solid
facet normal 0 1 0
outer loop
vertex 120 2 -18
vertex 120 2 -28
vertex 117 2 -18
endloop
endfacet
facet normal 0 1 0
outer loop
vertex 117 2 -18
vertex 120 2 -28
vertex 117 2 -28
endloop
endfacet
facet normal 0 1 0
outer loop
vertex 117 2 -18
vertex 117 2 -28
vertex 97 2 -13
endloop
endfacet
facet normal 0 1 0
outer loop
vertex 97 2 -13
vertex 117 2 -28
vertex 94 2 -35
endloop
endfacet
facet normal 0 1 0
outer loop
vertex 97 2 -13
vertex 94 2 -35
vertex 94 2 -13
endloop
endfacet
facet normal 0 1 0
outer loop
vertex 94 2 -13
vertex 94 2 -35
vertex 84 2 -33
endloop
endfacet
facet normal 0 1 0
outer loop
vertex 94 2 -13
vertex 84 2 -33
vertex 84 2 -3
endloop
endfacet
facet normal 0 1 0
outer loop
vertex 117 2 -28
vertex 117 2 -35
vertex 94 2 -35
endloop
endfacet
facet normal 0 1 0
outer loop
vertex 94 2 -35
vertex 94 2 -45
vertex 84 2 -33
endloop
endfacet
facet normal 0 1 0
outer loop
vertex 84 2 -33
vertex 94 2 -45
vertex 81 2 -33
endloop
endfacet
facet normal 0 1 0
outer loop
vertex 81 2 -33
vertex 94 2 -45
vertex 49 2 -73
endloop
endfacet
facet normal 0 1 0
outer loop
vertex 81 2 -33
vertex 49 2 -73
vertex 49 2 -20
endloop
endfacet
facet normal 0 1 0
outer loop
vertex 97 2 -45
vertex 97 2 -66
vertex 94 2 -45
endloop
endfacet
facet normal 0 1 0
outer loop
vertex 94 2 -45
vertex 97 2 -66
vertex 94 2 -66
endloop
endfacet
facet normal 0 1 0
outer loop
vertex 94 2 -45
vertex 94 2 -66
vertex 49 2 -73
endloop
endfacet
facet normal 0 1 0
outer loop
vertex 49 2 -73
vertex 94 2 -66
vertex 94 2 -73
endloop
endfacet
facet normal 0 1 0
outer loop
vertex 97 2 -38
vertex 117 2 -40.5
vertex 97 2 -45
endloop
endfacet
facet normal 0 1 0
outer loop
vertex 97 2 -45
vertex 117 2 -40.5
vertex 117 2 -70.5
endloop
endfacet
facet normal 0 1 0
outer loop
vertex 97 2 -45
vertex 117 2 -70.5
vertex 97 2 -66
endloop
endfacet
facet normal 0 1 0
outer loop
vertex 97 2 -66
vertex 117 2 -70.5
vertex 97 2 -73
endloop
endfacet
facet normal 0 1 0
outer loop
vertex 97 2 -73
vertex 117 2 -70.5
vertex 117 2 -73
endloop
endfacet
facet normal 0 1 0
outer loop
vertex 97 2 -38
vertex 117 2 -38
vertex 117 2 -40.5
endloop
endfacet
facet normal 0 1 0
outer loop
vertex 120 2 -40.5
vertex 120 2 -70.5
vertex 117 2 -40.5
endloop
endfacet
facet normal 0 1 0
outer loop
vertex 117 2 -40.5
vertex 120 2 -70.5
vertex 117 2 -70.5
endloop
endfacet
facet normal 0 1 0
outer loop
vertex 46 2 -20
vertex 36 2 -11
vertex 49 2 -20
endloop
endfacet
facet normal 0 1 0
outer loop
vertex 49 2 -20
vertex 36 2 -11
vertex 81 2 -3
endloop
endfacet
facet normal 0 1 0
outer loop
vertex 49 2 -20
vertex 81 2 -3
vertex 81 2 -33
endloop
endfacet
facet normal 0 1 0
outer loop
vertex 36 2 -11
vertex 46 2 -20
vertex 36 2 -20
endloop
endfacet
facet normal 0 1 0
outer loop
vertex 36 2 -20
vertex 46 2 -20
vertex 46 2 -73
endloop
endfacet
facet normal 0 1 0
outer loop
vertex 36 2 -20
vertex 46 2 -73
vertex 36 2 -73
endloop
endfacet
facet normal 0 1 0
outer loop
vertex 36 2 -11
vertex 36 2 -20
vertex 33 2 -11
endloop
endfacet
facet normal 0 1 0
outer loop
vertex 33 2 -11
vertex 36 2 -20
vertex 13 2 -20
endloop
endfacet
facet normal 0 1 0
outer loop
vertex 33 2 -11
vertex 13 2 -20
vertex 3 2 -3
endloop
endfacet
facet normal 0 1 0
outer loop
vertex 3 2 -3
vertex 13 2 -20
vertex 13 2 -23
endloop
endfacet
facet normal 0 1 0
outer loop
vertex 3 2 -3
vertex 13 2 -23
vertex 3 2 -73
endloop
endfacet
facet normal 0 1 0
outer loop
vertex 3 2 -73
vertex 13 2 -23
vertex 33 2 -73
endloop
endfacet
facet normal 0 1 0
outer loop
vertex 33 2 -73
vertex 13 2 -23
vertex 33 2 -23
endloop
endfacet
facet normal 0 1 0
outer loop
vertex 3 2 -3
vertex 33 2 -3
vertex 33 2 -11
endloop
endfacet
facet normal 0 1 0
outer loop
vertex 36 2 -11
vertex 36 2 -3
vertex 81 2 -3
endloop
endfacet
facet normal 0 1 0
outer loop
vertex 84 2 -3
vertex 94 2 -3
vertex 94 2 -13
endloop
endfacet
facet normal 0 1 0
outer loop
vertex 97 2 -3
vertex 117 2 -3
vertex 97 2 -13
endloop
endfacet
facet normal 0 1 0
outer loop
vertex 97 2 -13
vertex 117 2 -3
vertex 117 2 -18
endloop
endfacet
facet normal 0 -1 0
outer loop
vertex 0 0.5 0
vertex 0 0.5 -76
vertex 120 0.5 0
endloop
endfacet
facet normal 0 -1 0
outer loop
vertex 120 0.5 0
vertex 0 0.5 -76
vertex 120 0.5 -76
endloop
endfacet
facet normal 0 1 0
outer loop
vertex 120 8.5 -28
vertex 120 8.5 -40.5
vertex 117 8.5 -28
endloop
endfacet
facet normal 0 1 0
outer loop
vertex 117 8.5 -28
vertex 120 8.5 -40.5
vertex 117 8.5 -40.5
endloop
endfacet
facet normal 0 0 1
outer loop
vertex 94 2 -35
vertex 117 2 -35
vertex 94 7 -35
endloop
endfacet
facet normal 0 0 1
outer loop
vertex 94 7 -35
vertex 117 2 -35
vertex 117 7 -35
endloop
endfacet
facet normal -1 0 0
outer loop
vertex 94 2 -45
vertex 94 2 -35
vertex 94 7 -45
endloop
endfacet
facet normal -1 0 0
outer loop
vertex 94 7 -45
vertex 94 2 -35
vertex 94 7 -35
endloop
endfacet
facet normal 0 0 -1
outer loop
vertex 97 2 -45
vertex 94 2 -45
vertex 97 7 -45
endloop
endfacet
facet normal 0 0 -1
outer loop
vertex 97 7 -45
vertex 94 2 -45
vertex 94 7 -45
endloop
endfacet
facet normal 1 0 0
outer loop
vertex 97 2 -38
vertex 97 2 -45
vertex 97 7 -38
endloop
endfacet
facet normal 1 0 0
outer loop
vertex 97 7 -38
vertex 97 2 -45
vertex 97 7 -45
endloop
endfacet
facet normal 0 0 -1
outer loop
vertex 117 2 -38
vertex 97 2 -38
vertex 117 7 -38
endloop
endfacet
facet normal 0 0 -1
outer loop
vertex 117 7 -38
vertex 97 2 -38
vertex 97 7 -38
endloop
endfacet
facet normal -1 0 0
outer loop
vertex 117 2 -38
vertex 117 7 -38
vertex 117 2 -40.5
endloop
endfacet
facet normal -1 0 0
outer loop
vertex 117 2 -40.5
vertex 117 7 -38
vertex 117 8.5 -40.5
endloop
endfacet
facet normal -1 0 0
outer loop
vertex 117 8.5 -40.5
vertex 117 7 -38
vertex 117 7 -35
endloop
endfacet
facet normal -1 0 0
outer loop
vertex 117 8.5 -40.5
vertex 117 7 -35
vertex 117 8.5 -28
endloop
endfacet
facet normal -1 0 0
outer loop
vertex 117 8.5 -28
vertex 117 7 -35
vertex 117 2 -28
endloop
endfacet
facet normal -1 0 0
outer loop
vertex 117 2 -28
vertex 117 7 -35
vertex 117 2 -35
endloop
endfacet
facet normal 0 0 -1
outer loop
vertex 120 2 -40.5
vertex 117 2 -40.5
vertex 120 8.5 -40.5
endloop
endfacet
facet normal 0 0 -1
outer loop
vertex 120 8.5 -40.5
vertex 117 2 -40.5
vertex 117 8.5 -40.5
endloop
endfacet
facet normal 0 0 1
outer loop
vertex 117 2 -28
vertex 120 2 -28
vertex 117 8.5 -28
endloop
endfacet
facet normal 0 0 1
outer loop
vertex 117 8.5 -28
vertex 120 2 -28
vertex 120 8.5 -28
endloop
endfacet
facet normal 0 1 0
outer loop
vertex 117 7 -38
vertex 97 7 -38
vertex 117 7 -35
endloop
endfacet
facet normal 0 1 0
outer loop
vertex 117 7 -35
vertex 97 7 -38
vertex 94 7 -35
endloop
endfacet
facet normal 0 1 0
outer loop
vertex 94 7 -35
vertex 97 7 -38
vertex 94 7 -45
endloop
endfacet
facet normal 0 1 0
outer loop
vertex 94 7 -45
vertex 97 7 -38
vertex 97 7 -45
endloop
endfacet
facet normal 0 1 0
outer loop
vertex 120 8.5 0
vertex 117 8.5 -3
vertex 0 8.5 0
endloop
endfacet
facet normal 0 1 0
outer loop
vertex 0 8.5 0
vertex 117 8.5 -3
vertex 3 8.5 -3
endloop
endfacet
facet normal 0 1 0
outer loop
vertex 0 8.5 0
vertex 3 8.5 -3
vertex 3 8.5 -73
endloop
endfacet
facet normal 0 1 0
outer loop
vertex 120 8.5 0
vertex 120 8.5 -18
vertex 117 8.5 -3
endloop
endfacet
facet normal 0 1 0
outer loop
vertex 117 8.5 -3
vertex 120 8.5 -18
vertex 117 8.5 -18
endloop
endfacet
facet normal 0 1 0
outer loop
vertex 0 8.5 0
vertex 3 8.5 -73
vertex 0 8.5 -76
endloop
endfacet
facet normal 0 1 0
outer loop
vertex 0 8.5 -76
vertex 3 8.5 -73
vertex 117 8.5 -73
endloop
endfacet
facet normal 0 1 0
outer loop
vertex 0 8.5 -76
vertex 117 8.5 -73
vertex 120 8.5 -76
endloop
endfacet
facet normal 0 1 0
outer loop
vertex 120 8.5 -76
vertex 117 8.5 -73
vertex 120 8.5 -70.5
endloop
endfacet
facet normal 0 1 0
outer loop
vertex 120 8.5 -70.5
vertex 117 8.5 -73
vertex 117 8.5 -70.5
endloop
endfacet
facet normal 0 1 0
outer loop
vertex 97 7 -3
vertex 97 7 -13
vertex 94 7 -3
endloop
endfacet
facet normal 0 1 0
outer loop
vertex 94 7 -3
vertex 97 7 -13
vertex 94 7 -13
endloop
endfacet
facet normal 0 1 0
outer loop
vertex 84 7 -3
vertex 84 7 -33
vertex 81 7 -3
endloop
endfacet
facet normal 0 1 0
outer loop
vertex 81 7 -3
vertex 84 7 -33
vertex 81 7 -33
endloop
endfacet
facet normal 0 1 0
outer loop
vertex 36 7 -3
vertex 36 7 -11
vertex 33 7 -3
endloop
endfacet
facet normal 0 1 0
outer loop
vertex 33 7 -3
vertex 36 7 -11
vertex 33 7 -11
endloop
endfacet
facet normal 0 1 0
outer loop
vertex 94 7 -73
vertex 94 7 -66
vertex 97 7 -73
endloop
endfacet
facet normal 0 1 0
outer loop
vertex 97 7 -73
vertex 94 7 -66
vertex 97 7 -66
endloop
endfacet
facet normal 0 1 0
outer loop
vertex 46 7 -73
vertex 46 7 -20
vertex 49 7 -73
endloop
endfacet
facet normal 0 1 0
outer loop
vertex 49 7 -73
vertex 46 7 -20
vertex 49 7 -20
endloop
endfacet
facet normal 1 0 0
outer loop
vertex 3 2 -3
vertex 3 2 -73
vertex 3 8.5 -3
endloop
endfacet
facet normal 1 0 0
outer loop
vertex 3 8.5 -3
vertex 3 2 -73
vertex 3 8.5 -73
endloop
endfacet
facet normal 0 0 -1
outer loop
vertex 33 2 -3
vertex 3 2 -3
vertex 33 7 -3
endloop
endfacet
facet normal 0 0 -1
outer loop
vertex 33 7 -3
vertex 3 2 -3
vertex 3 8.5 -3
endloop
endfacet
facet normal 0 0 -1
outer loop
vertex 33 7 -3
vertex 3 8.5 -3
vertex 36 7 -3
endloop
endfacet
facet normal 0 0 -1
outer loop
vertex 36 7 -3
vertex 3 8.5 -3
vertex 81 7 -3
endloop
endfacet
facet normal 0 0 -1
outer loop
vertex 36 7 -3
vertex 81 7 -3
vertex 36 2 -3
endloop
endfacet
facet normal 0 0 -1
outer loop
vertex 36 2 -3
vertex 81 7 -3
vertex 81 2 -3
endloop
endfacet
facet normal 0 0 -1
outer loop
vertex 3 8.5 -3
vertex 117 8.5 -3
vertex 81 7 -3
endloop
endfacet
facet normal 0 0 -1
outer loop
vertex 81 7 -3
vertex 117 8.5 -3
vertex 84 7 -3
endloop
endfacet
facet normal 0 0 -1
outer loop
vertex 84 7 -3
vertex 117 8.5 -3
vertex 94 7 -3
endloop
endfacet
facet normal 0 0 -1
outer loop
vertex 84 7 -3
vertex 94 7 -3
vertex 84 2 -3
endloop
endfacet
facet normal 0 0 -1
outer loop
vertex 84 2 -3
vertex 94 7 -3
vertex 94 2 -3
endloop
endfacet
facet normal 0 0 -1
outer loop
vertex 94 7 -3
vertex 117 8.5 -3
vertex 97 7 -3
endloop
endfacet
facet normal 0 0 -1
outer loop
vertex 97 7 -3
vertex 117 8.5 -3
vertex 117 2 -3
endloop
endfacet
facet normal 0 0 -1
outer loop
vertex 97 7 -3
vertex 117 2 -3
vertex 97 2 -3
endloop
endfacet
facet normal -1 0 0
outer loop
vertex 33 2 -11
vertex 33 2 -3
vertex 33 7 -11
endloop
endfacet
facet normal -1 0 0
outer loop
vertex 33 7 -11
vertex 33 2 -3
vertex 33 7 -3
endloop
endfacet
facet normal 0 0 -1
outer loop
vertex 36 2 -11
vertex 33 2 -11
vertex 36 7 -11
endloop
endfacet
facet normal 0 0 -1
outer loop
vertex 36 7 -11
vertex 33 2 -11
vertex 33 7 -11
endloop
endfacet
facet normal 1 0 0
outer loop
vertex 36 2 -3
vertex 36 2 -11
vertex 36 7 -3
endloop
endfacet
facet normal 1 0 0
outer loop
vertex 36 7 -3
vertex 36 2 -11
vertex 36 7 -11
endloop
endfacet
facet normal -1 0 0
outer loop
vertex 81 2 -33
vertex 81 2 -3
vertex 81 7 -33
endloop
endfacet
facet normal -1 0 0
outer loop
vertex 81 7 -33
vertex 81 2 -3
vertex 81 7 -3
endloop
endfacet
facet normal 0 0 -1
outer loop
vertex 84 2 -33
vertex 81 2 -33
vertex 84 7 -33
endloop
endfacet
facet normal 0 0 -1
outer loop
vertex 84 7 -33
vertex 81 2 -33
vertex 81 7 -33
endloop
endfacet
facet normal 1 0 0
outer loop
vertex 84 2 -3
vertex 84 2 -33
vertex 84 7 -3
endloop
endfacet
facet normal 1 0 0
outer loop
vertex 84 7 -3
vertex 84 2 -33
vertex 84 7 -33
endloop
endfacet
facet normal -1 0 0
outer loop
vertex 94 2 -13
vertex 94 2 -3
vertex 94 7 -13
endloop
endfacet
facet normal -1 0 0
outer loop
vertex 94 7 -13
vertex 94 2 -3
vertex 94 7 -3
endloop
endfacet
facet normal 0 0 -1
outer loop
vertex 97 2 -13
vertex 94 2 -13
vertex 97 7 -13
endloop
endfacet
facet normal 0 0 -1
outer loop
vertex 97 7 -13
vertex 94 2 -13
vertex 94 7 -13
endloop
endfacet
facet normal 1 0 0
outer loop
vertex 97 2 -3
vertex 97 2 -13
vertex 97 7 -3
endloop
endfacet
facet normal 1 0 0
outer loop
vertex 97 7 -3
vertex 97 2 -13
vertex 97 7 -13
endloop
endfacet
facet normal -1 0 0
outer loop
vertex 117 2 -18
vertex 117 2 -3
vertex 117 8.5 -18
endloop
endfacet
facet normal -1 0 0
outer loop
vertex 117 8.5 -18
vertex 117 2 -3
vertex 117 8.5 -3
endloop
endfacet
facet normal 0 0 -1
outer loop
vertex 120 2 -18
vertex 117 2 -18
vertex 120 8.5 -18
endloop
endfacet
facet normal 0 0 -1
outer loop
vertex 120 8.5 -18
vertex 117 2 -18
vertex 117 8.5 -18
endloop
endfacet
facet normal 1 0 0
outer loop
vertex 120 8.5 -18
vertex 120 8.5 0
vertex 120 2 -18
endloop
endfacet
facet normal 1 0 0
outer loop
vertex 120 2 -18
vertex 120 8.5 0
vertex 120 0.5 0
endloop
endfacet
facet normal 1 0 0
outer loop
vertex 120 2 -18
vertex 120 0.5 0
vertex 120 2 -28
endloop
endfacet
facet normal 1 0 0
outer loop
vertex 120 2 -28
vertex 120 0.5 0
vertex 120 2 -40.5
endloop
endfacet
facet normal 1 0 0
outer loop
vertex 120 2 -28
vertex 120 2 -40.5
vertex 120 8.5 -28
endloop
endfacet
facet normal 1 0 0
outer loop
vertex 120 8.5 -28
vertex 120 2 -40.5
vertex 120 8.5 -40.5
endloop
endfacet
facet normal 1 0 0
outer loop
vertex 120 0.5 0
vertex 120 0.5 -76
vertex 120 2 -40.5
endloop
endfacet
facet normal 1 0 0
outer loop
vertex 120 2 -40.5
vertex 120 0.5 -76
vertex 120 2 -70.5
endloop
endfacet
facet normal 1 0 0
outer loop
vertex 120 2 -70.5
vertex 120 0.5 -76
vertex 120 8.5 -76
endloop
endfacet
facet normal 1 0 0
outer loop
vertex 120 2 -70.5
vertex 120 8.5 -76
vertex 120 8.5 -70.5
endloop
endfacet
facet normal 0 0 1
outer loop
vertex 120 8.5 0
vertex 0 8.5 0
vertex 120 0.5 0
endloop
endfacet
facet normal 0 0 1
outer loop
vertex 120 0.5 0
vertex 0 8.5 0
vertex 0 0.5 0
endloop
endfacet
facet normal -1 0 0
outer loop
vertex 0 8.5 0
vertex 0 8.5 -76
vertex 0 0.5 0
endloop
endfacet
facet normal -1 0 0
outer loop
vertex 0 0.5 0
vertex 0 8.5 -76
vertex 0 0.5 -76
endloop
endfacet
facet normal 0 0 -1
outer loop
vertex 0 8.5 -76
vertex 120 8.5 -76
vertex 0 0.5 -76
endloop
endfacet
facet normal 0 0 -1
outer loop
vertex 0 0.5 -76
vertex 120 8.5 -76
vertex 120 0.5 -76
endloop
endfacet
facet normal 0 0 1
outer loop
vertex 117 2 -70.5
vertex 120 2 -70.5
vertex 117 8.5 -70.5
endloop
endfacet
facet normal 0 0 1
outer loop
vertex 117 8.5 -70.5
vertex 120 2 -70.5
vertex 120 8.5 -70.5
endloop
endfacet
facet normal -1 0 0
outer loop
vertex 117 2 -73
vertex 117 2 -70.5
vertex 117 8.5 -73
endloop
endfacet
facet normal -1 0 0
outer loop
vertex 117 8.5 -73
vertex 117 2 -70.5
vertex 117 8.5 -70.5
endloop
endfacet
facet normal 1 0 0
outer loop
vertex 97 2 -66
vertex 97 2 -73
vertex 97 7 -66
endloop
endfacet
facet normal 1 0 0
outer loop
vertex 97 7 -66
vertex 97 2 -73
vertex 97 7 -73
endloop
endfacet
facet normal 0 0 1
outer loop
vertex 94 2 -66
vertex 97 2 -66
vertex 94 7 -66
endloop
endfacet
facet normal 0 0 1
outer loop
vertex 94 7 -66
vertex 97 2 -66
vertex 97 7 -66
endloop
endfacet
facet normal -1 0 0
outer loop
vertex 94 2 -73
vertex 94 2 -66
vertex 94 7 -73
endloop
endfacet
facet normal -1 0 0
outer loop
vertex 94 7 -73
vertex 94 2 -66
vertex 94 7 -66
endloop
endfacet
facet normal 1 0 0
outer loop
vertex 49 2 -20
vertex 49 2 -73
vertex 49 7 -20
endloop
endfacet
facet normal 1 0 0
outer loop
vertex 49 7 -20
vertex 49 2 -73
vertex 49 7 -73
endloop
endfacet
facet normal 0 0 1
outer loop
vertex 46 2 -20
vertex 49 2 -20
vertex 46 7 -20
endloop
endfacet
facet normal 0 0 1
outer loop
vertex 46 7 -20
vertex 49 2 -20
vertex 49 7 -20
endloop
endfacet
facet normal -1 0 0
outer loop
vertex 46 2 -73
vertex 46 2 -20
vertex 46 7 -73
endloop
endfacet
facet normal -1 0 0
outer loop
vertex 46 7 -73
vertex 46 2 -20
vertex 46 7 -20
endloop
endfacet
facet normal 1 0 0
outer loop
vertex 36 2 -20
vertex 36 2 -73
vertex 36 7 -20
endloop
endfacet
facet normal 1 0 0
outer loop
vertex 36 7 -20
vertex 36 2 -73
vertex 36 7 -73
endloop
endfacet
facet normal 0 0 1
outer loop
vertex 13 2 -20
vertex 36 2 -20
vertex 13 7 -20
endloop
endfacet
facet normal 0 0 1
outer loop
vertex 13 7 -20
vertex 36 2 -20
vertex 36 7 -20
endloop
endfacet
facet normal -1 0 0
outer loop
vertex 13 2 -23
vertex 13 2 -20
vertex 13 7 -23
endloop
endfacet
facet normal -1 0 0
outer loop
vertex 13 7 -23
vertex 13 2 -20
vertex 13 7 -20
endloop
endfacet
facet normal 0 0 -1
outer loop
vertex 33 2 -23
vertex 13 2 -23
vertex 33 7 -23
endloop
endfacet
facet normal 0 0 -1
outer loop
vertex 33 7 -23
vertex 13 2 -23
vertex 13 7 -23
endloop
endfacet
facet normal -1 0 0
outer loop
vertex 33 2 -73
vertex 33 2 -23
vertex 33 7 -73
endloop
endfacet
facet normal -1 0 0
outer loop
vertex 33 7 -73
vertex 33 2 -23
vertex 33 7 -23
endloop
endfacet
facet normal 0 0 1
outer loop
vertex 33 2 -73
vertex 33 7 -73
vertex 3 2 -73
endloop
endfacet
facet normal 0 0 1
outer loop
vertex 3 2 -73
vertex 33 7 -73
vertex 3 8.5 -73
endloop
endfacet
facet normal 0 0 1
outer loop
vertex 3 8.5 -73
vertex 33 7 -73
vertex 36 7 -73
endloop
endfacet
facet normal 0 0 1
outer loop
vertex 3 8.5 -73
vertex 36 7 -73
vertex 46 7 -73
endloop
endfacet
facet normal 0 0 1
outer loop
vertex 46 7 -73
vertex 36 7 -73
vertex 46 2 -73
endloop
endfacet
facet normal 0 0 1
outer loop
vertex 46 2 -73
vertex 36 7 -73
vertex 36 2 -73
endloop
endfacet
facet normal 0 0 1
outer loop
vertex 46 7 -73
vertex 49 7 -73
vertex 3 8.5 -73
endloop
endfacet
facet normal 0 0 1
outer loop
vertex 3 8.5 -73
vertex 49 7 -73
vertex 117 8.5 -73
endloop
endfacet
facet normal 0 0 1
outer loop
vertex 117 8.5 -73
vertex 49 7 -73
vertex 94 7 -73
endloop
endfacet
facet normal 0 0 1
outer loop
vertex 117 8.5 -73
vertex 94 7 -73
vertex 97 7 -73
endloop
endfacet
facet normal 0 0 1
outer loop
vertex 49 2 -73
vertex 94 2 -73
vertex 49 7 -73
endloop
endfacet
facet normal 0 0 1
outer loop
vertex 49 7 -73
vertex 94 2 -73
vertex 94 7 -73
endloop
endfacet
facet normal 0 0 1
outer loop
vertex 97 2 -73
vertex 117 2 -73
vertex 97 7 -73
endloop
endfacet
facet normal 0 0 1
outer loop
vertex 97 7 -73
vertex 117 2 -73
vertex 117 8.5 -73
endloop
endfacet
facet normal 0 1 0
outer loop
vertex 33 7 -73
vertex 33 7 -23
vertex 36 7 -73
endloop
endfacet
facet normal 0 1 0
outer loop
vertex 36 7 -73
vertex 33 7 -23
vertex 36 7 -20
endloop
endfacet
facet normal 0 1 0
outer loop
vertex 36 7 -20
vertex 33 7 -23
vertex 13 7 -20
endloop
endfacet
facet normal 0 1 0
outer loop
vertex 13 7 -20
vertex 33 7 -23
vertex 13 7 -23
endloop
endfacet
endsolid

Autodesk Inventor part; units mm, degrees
ref_plane "YZ Plane" through (0, 0, 0) normal (1, 0, 0) x (0, 1, 0)
ref_plane "XZ Plane" through (0, 0, 0) normal (0, 1, 0) x (-1, 0, 0)
ref_plane "XY Plane" through (0, 0, 0) normal (0, 0, 1) x (1, 0, 0)
ref_plane "作業平面1" through (0, 2, 0) normal (0, 1, 0) x (1, 0, 0)
sketch "スケッチ4" plane through (0, 2, 0) normal (0, 1, 0) x (1, 0, 0)
  line L0 (3, 73) -> (33, 73)
  line L1 (3, 73) -> (3, 23)
  line L2 (3, 20) -> (3, 3)
  line L3 (81, 3) -> (81, 33)
  line L4 (81, 33) -> (84, 33)
  line L5 (84, 33) -> (84, 3)
  line L6 (117, 3) -> (117, 18)
  line L7 (117, 18) -> (120, 18)
  line L8 (117, 28) -> (117, 35)
  line L9 (120, 28) -> (117, 28)
  line L10 (120, 28) -> (120, 38)
  line L11 (117, 38) -> (97, 38)
  line L12 (97, 38) -> (97, 45)
  line L13 (97, 45) -> (94, 45)
  line L14 (94, 45) -> (94, 35)
  line L15 (94, 35) -> (117, 35)
  line L16 (97, 73) -> (97, 66)
  line L17 (97, 66) -> (94, 66)
  line L18 (94, 66) -> (94, 73)
  line L19 (33, 73) -> (33, 23)
  line L20 (33, 23) -> (13, 23)
  line L21 (13, 23) -> (13, 20)
  line L22 (13, 20) -> (36, 20)
  line L23 (36, 20) -> (36, 73)
  line L24 (36, 73) -> (46, 73)
  line L25 (46, 73) -> (46, 20)
  line L26 (46, 20) -> (49, 20)
  line L27 (49, 20) -> (49, 73)
  line L28 (117, 38) -> (117, 40.5)
  line L29 (117, 40.5) -> (120, 40.5)
  line L30 (120, 40.5) -> (120, 38)
  line L31 (117, 73) -> (117, 70.5)
  line L32 (117, 70.5) -> (120, 70.5)
  line L33 (0, 0) -> (0, 76)
  line L34 (0, 76) -> (120, 76)
  line L35 (120, 76) -> (120, 70.5)
  line L36 (0, 0) -> (120, 0)
  line L37 (120, 0) -> (120, 18)
  line L38 (3, 23) -> (3, 20)
  line L39 (33, 3) -> (33, 11)
  line L40 (33, 11) -> (36, 11)
  line L41 (36, 11) -> (36, 3)
  line L42 (3, 3) -> (33, 3)
  line L43 (36, 3) -> (81, 3)
  line L44 (94, 3) -> (94, 13)
  line L45 (94, 13) -> (97, 13)
  line L46 (97, 13) -> (97, 3)
  line L47 (84, 3) -> (94, 3)
  line L48 (97, 3) -> (117, 3)
  line L49 (117, 73) -> (97, 73)
  line L50 (94, 73) -> (49, 73)
  dimension "d29" = 3
  dimension "d30" = 30
  dimension "d34" = 3
  dimension "d35" = 20
  dimension "d36" = 3
  dimension "d37" = 10
  dimension "d39" = 3
  dimension "d41" = 32
  dimension "d42" = 3
  dimension "d60" = 3
  dimension "d61" = 3
  dimension "d63" = 7
  dimension "d64" = 7
  dimension "d65" = 15
  dimension "d66" = 10
  dimension "d67" = 2.5
  dimension "d68" = 3
  dimension "d69" = 3
  dimension "d70" = 2.5
  dimension "d75" = 76
  dimension "d78" = 3
  dimension "d79" = 3
  dimension "d80" = 3
  dimension "d81" = 20
  dimension "d82" = 50
  dimension "d84" = 120
  dimension "d85" = 3
  dimension "d86" = 8
  dimension "d87" = 3
  dimension "d88" = 30
  dimension "d89" = 3
  dimension "d90" = 10
  dimension "d91" = 10
  dimension "d92" = 35
extrude "押し出し5" add sketch "スケッチ4" along normal blind 5
sketch "スケッチ6" plane through (0, 2, 0) normal (0, 1, 0) x (1, 0, 0)
  line L0 (0, 0) -> (120, 0) projected
  line L1 (0, 0) -> (120, 0)
  line L2 (120, 18) -> (117, 18) projected
  line L3 (120, 0) -> (120, 18)
  line L4 (120, 18) -> (117, 18)
  line L5 (117, 18) -> (117, 3) projected
  line L6 (117, 18) -> (117, 3)
  line L7 (3, 3) -> (3, 73) projected
  line L8 (117, 3) -> (3, 3)
  line L9 (3, 3) -> (3, 73)
  line L10 (97, 73) -> (117, 73) projected
  line L11 (3, 73) -> (117, 73)
  line L12 (117, 73) -> (117, 70.5) projected
  line L13 (117, 73) -> (117, 70.5)
  line L14 (117, 70.5) -> (120, 70.5) projected
  line L15 (117, 70.5) -> (120, 70.5)
  line L16 (120, 70.5) -> (120, 76) projected
  line L17 (120, 70.5) -> (120, 76)
  line L18 (120, 76) -> (0, 76) projected
  line L19 (120, 76) -> (0, 76)
  line L20 (0, 76) -> (0, 0) projected
  line L21 (0, 76) -> (0, 0)
  line L22 (120, 28) -> (117, 28) projected
  line L23 (117, 28) -> (120, 28)
  line L24 (120, 40.5) -> (120, 28) projected
  line L25 (120, 28) -> (120, 40.5)
  line L26 (117, 40.5) -> (120, 40.5) projected
  line L27 (120, 40.5) -> (117, 40.5)
  line L28 (117, 40.5) -> (117, 28)
extrude "押し出し6" add sketch "スケッチ6" along normal blind 6.5
sketch "スケッチ7" plane through (0, 2, 0) normal (0, 1, 0) x (1, 0, 0)
  line L0 (0, 0) -> (120, 0) projected
  line L1 (120, 70.5) -> (120, 76) projected
  line L2 (0, 0) -> (120, 0)
  line L3 (120, 0) -> (120, 76)
  line L4 (120, 76) -> (0, 76)
  line L5 (0, 76) -> (0, 0)
extrude "押し出し7" add sketch "スケッチ7" against normal blind 1.5
properties part number "BASE_revised"
